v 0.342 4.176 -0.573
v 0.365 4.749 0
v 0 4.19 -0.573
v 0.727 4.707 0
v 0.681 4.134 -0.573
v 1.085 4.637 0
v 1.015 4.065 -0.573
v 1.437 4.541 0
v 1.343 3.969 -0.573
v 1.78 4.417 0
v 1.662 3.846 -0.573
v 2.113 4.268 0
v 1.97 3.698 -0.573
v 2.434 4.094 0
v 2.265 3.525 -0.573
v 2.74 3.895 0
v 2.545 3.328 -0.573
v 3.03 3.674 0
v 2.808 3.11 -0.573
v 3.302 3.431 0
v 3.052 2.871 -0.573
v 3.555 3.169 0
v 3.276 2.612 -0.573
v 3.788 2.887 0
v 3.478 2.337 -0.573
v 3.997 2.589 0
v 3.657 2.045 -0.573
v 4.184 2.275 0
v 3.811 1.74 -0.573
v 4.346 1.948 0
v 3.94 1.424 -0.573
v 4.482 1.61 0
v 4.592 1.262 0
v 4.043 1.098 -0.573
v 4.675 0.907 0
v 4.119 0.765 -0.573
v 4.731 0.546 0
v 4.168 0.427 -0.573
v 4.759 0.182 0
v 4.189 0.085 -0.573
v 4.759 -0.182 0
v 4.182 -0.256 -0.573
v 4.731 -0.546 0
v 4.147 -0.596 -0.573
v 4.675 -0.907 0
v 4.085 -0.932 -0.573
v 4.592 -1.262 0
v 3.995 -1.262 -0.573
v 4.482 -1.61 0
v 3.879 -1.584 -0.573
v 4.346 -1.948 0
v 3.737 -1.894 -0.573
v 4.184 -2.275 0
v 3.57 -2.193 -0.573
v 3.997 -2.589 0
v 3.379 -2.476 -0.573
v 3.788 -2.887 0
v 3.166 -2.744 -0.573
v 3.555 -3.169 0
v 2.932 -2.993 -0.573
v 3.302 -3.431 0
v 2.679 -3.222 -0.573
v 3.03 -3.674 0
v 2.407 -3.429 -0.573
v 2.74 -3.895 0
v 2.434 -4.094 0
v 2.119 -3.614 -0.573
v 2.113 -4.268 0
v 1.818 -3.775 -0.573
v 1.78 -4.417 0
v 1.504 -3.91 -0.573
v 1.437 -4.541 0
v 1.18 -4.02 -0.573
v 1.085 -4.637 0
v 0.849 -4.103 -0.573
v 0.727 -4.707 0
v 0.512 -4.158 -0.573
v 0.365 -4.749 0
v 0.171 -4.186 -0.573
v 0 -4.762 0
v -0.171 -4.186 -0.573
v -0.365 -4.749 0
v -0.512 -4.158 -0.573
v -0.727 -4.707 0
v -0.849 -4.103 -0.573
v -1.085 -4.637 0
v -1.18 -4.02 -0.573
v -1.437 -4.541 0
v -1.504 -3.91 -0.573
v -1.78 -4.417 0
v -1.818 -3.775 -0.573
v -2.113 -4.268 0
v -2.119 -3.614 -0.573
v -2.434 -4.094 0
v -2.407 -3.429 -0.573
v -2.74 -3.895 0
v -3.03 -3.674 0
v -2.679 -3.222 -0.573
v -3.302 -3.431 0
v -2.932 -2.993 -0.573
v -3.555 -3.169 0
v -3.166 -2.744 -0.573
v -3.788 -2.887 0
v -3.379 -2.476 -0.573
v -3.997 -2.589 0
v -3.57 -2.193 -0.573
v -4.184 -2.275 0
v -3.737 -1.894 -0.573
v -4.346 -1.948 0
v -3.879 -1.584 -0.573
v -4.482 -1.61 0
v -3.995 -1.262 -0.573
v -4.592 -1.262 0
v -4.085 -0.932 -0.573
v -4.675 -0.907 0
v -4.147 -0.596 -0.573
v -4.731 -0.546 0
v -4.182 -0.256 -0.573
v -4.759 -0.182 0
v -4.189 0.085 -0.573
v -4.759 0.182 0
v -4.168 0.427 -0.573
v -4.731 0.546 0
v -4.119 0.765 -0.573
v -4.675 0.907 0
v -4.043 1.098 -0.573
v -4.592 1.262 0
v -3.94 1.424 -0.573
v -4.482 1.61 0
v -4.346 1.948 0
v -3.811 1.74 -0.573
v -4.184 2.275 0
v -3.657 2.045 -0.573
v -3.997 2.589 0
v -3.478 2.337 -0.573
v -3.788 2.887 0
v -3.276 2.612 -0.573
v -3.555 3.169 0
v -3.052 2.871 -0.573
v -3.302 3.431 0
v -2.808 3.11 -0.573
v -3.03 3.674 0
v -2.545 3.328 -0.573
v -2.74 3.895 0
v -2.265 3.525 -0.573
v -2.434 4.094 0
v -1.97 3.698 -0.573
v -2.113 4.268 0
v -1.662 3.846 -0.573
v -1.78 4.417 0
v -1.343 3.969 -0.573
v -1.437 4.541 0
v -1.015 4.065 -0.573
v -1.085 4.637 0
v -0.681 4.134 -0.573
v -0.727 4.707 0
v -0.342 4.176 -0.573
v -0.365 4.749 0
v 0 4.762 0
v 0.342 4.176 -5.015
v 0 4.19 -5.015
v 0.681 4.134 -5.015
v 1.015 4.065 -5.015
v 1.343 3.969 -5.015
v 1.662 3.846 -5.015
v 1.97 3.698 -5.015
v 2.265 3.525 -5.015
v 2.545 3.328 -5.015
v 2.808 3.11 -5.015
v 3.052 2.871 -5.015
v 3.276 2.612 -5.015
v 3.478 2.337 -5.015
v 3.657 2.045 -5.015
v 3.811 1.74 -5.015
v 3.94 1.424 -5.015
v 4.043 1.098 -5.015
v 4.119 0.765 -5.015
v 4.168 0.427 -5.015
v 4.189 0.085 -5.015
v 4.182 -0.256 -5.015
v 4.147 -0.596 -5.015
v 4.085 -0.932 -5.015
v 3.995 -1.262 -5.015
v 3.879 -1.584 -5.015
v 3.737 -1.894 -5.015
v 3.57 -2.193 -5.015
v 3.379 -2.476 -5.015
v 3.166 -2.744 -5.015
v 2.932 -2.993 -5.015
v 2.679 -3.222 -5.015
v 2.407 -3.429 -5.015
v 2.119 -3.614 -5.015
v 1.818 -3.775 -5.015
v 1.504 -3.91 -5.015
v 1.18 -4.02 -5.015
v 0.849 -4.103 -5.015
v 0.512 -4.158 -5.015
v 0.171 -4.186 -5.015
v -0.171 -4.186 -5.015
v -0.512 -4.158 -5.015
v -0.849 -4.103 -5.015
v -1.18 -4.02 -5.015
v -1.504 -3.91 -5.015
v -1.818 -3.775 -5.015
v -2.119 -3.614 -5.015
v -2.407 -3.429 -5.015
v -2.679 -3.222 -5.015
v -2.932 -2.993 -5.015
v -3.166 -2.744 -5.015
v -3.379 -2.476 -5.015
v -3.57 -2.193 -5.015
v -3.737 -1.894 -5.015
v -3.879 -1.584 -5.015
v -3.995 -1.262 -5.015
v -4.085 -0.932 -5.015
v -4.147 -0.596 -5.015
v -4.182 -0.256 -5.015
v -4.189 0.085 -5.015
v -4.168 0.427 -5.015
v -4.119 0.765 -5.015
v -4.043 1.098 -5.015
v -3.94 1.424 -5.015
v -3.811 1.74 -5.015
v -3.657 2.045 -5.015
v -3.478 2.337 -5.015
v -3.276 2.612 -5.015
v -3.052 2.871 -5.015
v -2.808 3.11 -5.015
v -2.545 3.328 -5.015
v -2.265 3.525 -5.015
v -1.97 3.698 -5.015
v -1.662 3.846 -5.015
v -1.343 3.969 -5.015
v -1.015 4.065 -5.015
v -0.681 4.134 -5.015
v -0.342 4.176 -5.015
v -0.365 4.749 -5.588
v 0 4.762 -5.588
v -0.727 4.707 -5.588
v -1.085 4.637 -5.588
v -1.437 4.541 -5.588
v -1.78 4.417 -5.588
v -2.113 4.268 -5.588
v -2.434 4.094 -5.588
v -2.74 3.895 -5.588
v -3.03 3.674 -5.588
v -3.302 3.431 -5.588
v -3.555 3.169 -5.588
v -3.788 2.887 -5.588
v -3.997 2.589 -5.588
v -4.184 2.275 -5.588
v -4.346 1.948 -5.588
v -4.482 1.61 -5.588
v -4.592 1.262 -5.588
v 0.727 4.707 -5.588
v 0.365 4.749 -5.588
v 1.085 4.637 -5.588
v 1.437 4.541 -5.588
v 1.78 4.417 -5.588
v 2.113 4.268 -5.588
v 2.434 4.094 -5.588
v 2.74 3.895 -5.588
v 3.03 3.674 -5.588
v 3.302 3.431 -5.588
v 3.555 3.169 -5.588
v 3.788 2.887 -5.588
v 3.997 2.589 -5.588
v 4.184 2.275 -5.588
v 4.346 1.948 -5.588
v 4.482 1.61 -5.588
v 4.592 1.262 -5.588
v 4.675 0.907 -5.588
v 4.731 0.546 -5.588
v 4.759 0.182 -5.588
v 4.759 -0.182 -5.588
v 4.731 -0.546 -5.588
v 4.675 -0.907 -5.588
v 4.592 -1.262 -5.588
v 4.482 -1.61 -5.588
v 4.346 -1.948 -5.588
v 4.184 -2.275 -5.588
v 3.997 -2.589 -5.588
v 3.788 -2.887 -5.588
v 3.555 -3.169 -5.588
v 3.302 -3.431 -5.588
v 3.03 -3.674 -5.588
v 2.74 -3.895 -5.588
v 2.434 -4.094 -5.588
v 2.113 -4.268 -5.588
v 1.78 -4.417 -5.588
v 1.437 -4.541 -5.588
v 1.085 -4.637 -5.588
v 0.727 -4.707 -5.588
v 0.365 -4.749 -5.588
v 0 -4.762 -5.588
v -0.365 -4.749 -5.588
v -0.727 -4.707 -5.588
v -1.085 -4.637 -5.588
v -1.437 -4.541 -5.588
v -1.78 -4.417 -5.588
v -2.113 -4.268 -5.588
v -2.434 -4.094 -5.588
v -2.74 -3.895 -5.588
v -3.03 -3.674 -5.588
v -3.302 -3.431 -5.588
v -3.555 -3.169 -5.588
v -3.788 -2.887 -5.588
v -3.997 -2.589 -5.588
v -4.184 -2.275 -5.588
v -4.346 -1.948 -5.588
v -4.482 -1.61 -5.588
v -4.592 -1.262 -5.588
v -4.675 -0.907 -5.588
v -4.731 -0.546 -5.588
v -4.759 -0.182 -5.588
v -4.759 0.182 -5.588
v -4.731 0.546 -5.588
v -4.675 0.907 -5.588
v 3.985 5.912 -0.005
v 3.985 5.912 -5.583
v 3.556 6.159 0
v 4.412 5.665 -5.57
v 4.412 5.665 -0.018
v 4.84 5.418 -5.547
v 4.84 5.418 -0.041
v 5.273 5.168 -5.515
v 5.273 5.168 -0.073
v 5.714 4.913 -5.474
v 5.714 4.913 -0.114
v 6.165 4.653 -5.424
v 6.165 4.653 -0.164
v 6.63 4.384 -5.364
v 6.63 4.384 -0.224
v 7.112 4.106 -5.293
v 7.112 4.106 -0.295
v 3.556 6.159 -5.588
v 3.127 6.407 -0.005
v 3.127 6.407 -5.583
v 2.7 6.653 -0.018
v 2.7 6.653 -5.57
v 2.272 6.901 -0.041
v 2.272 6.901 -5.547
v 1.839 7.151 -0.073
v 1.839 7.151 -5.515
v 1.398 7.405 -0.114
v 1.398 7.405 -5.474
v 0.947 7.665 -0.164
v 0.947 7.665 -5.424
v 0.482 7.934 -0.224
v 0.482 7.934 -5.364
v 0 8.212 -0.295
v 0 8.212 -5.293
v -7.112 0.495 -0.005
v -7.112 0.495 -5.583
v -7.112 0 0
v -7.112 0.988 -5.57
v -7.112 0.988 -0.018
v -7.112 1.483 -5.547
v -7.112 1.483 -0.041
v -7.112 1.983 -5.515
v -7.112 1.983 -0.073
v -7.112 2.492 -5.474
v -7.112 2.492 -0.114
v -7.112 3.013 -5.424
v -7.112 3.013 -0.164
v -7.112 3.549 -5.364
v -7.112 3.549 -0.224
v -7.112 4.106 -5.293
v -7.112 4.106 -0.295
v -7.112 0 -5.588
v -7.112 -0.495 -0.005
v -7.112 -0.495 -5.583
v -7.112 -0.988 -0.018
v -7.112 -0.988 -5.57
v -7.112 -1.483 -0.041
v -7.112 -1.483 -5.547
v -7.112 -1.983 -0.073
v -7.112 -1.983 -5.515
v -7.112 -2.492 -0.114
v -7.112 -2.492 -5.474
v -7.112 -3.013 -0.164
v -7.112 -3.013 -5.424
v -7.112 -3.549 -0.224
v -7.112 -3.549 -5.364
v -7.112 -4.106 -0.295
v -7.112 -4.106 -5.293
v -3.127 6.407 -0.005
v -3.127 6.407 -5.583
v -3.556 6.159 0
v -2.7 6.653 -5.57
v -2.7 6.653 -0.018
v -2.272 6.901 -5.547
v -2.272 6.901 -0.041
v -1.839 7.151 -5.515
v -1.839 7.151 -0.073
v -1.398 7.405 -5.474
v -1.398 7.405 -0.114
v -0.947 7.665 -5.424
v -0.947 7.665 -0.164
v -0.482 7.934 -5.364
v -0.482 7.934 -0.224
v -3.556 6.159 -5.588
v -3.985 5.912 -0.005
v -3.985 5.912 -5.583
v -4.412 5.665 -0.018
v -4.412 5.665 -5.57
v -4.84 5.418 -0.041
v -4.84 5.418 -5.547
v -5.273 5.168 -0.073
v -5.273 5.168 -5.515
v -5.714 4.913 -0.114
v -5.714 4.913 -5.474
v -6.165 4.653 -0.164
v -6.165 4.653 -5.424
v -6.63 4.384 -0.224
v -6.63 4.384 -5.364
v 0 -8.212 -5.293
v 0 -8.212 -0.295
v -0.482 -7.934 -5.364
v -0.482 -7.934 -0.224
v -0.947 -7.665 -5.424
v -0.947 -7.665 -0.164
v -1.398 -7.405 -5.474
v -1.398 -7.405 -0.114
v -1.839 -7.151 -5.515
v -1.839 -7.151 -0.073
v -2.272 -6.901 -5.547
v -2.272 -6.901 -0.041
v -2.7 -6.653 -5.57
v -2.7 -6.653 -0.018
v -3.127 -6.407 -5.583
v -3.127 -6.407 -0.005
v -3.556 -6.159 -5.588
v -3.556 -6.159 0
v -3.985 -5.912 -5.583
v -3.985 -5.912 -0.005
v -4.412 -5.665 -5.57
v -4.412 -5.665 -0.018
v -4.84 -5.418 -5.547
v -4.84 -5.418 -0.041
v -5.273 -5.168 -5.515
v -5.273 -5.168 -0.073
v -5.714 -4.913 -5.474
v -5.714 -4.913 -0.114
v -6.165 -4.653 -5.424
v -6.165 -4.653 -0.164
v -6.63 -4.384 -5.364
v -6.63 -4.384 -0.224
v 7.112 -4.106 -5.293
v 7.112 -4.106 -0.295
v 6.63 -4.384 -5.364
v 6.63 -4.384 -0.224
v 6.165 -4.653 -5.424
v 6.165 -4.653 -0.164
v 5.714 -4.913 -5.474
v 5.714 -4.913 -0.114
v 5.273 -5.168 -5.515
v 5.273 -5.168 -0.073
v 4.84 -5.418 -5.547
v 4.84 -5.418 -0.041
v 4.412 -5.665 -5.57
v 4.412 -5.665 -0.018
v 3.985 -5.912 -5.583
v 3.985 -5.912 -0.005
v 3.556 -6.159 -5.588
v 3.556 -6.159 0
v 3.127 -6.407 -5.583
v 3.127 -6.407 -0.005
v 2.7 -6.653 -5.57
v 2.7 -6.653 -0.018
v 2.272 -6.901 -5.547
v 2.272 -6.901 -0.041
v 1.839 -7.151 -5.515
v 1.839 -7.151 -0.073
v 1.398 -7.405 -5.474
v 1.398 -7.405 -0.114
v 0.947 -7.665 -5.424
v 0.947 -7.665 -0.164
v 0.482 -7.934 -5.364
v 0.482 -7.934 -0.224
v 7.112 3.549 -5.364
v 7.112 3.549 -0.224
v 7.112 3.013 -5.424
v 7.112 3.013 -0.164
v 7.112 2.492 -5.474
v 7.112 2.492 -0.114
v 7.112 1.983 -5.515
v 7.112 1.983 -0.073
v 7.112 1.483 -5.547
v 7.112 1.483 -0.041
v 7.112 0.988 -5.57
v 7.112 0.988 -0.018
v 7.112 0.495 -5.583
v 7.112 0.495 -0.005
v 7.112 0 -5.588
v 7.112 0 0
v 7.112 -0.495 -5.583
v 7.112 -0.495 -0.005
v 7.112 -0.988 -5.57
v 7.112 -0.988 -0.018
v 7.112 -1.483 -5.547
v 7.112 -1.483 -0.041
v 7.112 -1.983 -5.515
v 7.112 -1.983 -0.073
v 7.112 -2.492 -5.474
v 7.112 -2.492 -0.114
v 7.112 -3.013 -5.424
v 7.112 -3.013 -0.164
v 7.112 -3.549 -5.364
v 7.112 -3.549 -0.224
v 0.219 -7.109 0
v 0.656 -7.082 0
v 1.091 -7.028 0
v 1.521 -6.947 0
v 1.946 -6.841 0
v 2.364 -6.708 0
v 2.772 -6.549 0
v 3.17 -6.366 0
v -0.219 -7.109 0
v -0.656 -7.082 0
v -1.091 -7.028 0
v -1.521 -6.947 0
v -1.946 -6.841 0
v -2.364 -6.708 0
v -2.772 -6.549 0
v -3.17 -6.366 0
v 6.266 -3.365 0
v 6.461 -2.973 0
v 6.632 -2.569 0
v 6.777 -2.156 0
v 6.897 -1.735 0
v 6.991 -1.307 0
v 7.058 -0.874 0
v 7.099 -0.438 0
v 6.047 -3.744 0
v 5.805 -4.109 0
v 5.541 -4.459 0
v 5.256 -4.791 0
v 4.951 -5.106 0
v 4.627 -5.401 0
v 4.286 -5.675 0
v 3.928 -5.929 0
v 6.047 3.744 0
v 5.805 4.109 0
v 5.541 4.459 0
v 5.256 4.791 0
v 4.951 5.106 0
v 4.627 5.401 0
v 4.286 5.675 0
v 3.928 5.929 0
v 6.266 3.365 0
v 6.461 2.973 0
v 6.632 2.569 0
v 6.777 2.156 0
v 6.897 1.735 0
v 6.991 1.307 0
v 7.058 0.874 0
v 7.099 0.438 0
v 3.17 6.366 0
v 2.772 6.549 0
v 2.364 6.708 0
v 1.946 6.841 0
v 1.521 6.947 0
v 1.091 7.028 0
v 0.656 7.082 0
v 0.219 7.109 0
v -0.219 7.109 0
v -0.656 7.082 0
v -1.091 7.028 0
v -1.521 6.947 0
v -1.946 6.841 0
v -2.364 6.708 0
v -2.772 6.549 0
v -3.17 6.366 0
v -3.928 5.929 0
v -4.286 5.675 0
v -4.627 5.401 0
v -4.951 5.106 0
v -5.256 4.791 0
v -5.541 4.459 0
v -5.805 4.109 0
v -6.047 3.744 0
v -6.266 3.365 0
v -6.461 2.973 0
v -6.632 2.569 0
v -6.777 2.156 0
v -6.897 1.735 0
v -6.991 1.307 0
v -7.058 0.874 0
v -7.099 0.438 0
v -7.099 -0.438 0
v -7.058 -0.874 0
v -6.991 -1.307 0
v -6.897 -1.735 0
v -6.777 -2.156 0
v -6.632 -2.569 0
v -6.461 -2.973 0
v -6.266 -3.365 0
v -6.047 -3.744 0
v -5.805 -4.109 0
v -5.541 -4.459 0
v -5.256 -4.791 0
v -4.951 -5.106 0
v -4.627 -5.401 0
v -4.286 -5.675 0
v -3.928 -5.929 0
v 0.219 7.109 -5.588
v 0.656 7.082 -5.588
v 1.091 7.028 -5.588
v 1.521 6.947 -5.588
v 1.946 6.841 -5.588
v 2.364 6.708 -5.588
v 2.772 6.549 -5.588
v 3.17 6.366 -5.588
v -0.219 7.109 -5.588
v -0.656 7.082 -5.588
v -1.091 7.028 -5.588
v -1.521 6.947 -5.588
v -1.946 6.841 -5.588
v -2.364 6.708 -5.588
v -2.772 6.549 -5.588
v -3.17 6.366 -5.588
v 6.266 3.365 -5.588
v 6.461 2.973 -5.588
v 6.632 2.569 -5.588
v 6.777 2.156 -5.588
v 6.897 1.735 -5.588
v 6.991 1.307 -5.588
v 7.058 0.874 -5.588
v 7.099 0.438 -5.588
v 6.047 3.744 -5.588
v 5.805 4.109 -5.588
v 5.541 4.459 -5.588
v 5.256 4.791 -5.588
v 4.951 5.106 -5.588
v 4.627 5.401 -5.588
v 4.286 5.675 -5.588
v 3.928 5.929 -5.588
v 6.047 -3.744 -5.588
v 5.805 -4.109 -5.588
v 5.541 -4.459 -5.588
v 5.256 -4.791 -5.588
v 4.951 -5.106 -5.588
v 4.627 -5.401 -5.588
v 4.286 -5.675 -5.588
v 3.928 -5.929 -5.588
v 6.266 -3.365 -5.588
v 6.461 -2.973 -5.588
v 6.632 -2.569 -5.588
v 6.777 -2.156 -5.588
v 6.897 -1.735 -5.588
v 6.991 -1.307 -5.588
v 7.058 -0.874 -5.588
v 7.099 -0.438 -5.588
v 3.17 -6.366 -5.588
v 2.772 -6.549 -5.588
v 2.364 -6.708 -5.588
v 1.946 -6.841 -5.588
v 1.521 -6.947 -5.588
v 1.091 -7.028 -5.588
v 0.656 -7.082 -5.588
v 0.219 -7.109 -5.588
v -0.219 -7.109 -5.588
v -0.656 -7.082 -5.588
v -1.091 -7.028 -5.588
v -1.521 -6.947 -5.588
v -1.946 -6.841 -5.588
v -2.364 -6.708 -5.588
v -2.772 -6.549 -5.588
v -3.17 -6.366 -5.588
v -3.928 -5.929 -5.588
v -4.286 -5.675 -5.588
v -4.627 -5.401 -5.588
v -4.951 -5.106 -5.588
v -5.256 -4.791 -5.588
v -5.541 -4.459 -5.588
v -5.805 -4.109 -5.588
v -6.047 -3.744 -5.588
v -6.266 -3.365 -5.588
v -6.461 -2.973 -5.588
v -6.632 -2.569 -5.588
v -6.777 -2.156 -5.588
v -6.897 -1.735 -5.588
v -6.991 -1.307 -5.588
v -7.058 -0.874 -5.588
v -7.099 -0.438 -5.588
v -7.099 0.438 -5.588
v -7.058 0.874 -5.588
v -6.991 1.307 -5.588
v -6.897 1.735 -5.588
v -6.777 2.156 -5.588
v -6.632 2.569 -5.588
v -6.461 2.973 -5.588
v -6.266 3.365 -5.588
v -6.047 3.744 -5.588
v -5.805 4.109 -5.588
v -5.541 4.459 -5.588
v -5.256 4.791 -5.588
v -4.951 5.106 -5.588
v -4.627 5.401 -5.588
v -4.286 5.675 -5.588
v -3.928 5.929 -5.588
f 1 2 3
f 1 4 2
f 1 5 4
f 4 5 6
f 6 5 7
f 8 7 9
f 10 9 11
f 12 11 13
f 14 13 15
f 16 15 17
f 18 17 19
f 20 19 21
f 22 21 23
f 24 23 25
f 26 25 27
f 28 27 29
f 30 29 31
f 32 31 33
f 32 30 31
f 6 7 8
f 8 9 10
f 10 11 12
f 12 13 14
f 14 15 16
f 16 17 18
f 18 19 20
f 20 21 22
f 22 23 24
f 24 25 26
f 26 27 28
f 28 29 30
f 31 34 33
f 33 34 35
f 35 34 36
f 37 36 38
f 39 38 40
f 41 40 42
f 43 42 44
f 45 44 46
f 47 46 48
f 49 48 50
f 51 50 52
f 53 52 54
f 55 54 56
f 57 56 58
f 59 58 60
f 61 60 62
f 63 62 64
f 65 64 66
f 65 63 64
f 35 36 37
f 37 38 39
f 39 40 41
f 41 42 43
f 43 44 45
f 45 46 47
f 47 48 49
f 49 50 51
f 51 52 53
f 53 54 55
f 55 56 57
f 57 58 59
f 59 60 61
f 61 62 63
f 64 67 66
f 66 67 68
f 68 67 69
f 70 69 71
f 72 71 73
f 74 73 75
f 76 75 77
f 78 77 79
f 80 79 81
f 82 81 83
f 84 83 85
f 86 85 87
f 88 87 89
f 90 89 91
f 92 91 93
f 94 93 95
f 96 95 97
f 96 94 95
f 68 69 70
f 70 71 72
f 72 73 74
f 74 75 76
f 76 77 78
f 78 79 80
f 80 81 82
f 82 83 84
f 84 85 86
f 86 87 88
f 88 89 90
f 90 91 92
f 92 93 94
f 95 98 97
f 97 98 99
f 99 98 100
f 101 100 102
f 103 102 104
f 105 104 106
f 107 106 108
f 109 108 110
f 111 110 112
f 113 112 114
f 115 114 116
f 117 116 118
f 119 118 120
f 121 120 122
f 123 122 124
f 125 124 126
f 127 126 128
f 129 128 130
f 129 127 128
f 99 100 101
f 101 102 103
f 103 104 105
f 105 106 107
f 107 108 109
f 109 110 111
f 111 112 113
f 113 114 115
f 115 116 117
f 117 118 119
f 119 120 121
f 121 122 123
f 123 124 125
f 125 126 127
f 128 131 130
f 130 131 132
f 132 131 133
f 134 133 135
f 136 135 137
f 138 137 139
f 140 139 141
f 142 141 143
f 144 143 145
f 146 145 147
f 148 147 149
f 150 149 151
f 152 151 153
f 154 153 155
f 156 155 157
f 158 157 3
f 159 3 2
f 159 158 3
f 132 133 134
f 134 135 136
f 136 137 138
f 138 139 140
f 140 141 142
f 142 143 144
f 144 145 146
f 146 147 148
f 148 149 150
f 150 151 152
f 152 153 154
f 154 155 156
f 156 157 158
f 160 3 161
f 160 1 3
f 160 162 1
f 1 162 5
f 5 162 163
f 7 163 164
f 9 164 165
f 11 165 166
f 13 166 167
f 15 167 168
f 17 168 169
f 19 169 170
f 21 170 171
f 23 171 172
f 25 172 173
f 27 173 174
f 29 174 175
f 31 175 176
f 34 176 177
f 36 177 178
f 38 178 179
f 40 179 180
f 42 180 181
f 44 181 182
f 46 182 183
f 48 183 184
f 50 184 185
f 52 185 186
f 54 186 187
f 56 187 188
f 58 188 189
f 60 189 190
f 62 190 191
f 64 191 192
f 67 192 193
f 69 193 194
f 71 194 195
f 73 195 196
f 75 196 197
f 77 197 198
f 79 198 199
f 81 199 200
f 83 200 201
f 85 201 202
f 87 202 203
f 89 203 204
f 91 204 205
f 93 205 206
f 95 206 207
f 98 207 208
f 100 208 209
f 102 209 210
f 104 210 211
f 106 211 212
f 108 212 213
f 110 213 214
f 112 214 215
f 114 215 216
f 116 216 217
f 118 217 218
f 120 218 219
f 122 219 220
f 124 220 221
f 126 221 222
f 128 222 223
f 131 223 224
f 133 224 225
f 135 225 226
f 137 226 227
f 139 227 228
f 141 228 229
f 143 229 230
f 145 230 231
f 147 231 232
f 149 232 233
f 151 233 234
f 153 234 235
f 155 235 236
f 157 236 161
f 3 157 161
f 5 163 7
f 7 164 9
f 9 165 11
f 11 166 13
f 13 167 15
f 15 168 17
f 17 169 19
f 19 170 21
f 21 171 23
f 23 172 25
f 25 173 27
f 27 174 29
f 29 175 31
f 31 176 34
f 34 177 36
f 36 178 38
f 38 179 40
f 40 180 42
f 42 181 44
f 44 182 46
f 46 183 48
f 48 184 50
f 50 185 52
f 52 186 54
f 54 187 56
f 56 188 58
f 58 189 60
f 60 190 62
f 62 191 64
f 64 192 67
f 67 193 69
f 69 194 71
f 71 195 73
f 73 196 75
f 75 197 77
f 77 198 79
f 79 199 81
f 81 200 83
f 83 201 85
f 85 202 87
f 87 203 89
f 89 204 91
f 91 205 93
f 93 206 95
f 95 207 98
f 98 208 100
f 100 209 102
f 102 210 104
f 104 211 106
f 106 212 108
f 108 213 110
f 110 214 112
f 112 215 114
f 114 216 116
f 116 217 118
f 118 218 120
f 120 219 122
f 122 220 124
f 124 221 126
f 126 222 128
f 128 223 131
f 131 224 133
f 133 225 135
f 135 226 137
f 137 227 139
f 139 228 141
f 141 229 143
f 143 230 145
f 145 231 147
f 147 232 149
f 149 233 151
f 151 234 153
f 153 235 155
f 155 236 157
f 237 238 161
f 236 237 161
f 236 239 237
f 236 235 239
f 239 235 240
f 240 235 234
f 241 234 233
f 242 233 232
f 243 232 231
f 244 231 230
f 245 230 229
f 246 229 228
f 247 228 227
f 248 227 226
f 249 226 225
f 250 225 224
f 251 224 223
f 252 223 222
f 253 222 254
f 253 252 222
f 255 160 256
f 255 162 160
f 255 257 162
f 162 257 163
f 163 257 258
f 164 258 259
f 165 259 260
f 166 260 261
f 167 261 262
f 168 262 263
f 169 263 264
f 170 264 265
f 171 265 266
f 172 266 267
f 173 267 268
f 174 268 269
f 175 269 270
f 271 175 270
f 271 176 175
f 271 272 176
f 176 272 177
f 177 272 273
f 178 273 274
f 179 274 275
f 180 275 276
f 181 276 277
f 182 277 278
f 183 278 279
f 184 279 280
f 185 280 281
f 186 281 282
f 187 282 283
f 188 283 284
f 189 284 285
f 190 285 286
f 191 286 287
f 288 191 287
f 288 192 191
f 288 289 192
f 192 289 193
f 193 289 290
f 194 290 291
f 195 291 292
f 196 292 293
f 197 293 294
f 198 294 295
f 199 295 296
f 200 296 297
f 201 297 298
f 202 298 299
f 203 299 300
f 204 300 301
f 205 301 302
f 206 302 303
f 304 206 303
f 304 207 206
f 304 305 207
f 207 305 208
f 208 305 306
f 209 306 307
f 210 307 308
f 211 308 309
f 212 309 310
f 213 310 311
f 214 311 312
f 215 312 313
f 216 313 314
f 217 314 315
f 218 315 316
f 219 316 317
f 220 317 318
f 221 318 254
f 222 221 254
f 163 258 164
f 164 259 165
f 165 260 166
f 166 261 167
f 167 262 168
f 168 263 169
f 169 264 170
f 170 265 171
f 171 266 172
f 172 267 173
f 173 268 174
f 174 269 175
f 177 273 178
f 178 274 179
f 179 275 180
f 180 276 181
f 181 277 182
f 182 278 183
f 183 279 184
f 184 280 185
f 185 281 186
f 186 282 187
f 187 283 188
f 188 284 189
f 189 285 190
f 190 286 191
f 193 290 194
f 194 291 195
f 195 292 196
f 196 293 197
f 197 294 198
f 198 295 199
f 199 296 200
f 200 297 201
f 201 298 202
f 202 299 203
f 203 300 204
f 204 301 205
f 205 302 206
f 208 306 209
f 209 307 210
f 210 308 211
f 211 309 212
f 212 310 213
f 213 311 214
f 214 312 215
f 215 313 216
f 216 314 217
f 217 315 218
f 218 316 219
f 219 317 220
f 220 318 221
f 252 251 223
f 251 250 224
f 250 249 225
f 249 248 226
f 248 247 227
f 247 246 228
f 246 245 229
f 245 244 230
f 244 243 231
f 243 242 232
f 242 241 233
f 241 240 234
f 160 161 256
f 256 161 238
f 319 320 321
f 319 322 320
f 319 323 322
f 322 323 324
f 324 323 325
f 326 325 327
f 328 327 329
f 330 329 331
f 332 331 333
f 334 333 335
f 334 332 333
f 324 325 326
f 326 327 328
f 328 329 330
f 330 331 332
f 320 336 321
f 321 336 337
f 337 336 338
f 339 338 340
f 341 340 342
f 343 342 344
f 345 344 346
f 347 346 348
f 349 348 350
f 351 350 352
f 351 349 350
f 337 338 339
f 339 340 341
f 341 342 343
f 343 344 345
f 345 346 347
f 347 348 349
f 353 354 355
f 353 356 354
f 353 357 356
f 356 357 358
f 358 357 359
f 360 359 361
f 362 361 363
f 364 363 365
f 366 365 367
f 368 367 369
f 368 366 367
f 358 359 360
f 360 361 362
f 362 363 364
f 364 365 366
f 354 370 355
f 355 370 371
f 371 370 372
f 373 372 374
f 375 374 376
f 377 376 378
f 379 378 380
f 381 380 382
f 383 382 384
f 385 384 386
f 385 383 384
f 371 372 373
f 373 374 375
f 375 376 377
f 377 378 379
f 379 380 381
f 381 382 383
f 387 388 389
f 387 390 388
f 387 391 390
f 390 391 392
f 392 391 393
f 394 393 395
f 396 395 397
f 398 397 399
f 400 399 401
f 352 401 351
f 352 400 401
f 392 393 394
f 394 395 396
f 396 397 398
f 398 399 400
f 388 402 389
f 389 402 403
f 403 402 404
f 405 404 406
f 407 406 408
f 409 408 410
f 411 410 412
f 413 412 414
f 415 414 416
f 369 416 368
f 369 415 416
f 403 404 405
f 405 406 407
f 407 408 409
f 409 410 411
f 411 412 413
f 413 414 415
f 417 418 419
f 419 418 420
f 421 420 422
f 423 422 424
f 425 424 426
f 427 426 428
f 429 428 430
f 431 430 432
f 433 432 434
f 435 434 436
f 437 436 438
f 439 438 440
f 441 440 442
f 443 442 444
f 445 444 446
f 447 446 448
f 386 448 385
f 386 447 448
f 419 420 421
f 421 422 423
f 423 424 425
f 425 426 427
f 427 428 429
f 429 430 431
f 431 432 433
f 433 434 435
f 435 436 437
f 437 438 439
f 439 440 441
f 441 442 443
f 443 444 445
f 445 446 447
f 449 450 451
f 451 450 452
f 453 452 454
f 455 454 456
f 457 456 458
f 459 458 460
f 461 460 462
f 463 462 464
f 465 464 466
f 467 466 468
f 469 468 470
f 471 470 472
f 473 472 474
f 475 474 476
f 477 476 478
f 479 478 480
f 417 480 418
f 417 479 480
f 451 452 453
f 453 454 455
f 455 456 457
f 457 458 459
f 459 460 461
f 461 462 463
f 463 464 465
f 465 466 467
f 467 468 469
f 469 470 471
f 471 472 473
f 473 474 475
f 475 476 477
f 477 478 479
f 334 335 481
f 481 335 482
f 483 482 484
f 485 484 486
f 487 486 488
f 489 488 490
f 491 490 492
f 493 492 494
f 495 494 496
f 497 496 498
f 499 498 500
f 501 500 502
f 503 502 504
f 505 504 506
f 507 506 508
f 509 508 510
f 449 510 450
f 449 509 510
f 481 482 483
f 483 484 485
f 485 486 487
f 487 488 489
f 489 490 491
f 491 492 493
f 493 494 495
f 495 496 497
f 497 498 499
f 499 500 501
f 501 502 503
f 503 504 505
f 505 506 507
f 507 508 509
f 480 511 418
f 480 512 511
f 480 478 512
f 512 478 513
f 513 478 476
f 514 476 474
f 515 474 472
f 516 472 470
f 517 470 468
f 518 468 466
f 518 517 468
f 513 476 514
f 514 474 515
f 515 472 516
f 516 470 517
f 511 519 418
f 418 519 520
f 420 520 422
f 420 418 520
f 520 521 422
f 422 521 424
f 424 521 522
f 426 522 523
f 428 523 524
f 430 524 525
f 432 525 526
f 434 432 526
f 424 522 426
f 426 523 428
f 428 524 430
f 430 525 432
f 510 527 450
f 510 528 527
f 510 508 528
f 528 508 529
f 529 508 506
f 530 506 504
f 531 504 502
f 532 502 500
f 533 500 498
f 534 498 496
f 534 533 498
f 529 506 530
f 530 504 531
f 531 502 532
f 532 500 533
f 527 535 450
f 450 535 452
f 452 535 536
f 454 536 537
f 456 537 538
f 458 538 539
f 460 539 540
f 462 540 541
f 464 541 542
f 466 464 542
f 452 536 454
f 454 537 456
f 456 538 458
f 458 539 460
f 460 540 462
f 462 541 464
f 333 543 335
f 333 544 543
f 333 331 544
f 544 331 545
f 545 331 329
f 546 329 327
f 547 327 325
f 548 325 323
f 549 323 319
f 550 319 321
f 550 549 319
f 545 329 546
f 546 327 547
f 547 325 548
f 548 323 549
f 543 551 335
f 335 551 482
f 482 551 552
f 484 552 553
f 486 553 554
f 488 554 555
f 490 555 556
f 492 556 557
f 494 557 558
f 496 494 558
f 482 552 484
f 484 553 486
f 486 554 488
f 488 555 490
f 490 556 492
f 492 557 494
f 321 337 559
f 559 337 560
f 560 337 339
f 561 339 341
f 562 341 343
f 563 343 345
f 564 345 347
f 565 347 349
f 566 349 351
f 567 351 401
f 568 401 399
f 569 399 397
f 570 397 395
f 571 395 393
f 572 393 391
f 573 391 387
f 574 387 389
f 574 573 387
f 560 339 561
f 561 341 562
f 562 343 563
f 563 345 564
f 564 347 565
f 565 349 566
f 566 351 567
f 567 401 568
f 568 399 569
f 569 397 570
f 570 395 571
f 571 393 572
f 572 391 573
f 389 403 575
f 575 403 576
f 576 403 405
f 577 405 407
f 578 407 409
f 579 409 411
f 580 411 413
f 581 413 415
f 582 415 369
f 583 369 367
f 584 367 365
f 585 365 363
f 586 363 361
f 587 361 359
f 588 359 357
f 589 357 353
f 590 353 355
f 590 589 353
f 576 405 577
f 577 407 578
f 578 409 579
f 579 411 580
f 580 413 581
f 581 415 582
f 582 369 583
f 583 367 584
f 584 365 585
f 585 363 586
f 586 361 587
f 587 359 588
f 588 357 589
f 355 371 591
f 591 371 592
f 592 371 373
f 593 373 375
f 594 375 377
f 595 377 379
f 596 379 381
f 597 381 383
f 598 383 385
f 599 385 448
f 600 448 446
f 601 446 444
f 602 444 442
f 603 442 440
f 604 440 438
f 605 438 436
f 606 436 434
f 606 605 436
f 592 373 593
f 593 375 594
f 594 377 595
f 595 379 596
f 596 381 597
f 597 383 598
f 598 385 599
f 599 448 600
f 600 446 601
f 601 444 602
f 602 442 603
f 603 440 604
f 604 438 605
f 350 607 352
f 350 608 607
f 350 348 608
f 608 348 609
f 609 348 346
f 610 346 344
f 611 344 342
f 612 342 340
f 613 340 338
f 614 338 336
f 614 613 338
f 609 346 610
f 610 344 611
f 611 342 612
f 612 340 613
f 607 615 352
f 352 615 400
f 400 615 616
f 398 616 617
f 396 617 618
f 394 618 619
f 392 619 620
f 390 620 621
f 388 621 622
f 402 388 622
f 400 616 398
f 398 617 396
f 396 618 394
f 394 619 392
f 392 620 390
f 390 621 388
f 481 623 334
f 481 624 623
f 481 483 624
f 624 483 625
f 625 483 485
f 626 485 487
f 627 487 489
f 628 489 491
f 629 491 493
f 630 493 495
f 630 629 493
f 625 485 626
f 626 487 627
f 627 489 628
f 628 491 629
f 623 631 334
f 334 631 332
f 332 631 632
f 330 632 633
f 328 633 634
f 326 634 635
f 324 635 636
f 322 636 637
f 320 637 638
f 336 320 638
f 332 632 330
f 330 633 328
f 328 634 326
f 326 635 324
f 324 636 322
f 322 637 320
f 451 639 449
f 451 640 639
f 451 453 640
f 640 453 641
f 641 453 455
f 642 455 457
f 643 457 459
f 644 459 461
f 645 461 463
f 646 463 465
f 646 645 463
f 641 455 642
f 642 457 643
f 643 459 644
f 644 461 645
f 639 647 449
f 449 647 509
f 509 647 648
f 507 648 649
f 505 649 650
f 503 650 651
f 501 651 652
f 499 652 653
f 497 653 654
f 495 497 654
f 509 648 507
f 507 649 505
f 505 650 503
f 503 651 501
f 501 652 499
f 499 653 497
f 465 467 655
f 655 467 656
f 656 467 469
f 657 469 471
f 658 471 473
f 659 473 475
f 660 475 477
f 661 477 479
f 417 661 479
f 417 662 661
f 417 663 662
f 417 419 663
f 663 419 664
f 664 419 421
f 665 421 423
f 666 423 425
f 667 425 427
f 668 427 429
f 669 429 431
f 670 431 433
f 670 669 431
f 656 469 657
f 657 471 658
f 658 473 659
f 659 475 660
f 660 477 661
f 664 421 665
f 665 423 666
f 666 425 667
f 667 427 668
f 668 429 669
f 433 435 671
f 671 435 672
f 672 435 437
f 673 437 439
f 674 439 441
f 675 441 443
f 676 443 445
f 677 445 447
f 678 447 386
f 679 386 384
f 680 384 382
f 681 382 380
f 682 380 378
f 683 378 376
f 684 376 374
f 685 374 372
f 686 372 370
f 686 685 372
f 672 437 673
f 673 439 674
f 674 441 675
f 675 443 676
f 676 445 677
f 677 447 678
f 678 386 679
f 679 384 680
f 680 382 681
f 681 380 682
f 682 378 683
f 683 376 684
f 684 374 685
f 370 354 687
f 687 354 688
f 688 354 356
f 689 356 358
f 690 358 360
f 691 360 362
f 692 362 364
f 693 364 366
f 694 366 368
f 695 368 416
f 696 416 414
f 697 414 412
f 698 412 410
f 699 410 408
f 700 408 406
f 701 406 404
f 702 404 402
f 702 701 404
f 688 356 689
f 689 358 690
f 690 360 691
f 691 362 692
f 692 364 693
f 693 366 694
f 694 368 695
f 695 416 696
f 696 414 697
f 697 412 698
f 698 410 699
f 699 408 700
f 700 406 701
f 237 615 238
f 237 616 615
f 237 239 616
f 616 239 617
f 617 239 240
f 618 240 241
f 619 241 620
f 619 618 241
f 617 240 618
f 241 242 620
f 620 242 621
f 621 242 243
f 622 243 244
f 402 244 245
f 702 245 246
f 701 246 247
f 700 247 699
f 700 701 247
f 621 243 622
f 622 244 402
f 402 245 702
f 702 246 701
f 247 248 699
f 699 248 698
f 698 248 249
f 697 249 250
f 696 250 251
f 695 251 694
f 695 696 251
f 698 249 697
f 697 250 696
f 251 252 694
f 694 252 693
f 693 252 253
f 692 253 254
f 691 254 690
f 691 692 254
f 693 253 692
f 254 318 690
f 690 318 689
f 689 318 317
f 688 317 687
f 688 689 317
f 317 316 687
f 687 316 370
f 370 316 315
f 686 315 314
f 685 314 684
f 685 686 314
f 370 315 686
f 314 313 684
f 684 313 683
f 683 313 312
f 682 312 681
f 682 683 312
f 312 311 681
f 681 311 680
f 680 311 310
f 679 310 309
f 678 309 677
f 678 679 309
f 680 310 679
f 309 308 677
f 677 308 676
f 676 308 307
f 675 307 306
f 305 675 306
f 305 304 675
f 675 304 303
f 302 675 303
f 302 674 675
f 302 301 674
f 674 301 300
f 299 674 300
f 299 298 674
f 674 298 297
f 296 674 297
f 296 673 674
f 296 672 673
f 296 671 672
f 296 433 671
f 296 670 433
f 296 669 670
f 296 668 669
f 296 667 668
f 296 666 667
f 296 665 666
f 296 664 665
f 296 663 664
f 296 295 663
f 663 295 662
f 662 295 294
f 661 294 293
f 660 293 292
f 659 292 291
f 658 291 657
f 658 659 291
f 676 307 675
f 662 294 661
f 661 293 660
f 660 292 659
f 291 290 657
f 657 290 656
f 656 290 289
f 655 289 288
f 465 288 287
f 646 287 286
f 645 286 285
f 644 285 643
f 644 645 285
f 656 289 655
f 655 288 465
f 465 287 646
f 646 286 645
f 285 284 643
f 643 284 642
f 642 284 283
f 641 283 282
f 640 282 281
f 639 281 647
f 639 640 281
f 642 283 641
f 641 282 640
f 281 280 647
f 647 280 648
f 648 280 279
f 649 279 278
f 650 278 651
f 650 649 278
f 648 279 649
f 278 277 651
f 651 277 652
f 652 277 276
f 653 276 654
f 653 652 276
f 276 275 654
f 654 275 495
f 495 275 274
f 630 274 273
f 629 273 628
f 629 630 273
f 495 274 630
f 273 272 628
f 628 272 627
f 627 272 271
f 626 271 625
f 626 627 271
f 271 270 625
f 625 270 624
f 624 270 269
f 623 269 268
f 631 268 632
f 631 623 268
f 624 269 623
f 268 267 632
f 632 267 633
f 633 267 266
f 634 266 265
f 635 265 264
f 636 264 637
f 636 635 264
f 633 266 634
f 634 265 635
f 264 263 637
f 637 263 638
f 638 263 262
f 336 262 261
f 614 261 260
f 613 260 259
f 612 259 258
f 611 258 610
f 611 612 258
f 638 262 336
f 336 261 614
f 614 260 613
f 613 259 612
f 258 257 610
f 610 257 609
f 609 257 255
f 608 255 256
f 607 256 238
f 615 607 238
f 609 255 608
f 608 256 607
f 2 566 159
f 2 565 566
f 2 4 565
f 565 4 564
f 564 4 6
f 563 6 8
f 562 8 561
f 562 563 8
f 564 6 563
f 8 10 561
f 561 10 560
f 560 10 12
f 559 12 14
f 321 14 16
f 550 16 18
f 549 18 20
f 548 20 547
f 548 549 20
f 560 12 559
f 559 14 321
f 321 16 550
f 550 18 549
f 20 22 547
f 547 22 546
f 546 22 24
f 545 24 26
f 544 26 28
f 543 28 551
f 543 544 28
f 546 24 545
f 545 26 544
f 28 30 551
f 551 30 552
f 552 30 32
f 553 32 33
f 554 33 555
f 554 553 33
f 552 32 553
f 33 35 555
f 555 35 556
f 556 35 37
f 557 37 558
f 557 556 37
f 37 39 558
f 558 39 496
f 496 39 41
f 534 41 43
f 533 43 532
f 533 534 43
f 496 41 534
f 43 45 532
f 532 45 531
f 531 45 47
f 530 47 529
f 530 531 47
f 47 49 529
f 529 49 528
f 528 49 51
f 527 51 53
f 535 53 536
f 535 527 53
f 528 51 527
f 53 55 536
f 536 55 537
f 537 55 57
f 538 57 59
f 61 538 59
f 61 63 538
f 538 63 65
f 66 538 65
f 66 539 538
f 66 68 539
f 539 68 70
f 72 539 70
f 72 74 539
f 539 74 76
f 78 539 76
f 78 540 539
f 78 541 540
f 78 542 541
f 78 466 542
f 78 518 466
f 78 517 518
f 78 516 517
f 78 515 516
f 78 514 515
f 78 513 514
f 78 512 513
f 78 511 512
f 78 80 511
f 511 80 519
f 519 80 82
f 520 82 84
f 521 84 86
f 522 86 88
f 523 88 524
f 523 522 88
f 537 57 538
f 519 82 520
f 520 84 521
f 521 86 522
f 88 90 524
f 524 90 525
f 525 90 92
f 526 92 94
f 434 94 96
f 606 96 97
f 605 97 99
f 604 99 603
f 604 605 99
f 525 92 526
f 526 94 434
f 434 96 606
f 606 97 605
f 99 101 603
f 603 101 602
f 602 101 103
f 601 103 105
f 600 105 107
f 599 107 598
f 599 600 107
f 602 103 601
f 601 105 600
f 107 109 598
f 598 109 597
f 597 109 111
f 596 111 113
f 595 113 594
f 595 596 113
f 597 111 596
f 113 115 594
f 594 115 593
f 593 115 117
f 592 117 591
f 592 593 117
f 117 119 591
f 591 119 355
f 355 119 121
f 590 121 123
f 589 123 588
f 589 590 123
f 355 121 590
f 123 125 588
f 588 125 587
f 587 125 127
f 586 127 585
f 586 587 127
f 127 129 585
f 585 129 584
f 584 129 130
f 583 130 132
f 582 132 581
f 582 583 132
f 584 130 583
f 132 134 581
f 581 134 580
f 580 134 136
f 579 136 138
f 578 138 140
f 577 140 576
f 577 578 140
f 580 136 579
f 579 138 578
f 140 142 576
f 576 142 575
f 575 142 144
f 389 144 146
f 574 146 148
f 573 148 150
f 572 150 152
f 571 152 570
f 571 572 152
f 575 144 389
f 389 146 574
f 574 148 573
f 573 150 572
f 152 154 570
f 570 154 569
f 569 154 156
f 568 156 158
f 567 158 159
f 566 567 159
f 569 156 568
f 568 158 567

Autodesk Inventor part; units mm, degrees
sketch "Sketch_8" plane through (0, 0, 0) normal (1, 0, 0) x (0, 1, 0)
  line L0 (0, -5.588) -> (0, 0)
  line L1 (0, 0) -> (7.112, 0)
  line L2 (7.112, 0) -> (8.5344, -0.3811)
  line L3 (8.5344, -0.3811) -> (8.5344, -5.2069)
  line L4 (8.5344, -5.2069) -> (7.112, -5.588)
  line L5 (7.112, -5.588) -> (0, -5.588)
  line L6 (0, -5.588) -> (0, 0)
sketch "Sketch_10" plane through (0, 0, 0) normal (0, 0, 1) x (1, 0, 0)
  line L0 (-14.224, 14.224) -> (-14.224, -14.224)
  line L1 (-14.224, -14.224) -> (14.224, -14.224)
  line L2 (14.224, -14.224) -> (14.224, 14.224)
  line L3 (14.224, 14.224) -> (-14.224, 14.224)
  line L4 (-7.112, 4.1061) -> (-7.112, -4.1061)
  line L5 (-7.112, -4.1061) -> (0, -8.2122)
  line L6 (0, -8.2122) -> (7.112, -4.1061)
  line L7 (7.112, -4.1061) -> (7.112, 4.1061)
  line L8 (7.112, 4.1061) -> (0, 8.2122)
  line L9 (0, 8.2122) -> (-7.112, 4.1061)
revolve "Revolution1" add sketch "Sketch_8" angle 360 about axis through (0, 0, -5.588) along (0, 0, -1)
extrude "Extrusion1" cut sketch "Sketch_10" against normal blind 5.588
sketch "Sketch_11" plane through (0, 0, 0) normal (1, 0, 0) x (0, 1, 0)
  line L0 (0, -5.588) -> (0, 0)
  line L1 (0, 0) -> (4.7625, 0)
  line L2 (4.7625, 0) -> (4.1897, -0.5728)
  line L3 (4.1897, -0.5728) -> (4.1897, -5.0152)
  line L4 (4.1897, -5.0152) -> (4.7625, -5.588)
  line L5 (4.7625, -5.588) -> (0, -5.588)
  line L6 (0, -5.588) -> (0, 0)
revolve "Revolution2" cut sketch "Sketch_11" angle 360 about axis through (0, 0, -5.588) along (0, 0, -1)
thread "Thread1" size "3/8-24 UNF" class "2B" standard "ANSI Unified Screw Threads" full length
ref_plane "NUT_XY" through (0, 0, 0) normal (0, 0, 1) x (1, 0, 0)
ref_plane "NUT_YZ" through (0, 0, 0) normal (1, 0, 0) x (0, 1, 0)
ref_plane "NUT_ZX" through (0, 0, 0) normal (0, 1, 0) x (0, 0, 1)
ref_plane "a1_XY" through (-7.112, 7.112, 0) normal (0, 0, 1) x (1, 0, 0)
ref_plane "a1_YZ" through (-7.112, 7.112, 0) normal (1, 0, 0) x (0, 1, 0)
ref_plane "a1_ZX" through (-7.112, 7.112, 0) normal (0, 1, 0) x (0, 0, 1)
ref_plane "a2_XY" through (7.112, 7.112, 0) normal (0, 0, 1) x (1, 0, 0)
ref_plane "a2_YZ" through (7.112, 7.112, 0) normal (1, 0, 0) x (0, 1, 0)
ref_plane "a2_ZX" through (7.112, 7.112, 0) normal (0, 1, 0) x (0, 0, 1)
ref_plane "b1_XY" through (0, 7.112, 0) normal (1, 0, 0) x (0, 0, -1)
ref_plane "b1_YZ" through (0, 7.112, 0) normal (0, 0, -1) x (0, 1, 0)
ref_plane "b1_ZX" through (0, 7.112, 0) normal (0, 1, 0) x (1, 0, 0)
ref_plane "b2_XY" through (0, 7.112, -5.588) normal (1, 0, 0) x (0, 0, -1)
ref_plane "b2_YZ" through (0, 7.112, -5.588) normal (0, 0, -1) x (0, 1, 0)
ref_plane "b2_ZX" through (0, 7.112, -5.588) normal (0, 1, 0) x (1, 0, 0)
ref_plane "e_XY" through (0, 0, -5.588) normal (1, 0, 0) x (0, 0, -1)
ref_plane "e_YZ" through (0, 0, -5.588) normal (0, 0, -1) x (0, 1, 0)
ref_plane "e_ZX" through (0, 0, -5.588) normal (0, 1, 0) x (1, 0, 0)
ref_plane "th1_XY" through (0, 4.7625, -5.588) normal (1, 0, 0) x (0, 0, -1)
ref_plane "th1_YZ" through (0, 4.7625, -5.588) normal (0, 0, -1) x (0, 1, 0)
ref_plane "th1_ZX" through (0, 4.7625, -5.588) normal (0, 1, 0) x (1, 0, 0)
ref_plane "th2_XY" through (0, -4.7625, -5.588) normal (1, 0, 0) x (0, 0, -1)
ref_plane "th2_YZ" through (0, -4.7625, -5.588) normal (0, 0, -1) x (0, 1, 0)
ref_plane "th2_ZX" through (0, -4.7625, -5.588) normal (0, 1, 0) x (1, 0, 0)
ref_plane "ol1_XY" through (0, 0, -7.112) normal (0, 1, 0) x (1, 0, 0)
ref_plane "ol1_YZ" through (0, 0, -7.112) normal (1, 0, 0) x (0, 0, -1)
ref_plane "ol1_ZX" through (0, 0, -7.112) normal (0, 0, -1) x (0, 1, 0)
ref_plane "ol2_XY" through (5.588, 0, -7.112) normal (0, 1, 0) x (1, 0, 0)
ref_plane "ol2_YZ" through (5.588, 0, -7.112) normal (1, 0, 0) x (0, 0, -1)
ref_plane "ol2_ZX" through (5.588, 0, -7.112) normal (0, 0, -1) x (0, 1, 0)
properties part number "D-801"
